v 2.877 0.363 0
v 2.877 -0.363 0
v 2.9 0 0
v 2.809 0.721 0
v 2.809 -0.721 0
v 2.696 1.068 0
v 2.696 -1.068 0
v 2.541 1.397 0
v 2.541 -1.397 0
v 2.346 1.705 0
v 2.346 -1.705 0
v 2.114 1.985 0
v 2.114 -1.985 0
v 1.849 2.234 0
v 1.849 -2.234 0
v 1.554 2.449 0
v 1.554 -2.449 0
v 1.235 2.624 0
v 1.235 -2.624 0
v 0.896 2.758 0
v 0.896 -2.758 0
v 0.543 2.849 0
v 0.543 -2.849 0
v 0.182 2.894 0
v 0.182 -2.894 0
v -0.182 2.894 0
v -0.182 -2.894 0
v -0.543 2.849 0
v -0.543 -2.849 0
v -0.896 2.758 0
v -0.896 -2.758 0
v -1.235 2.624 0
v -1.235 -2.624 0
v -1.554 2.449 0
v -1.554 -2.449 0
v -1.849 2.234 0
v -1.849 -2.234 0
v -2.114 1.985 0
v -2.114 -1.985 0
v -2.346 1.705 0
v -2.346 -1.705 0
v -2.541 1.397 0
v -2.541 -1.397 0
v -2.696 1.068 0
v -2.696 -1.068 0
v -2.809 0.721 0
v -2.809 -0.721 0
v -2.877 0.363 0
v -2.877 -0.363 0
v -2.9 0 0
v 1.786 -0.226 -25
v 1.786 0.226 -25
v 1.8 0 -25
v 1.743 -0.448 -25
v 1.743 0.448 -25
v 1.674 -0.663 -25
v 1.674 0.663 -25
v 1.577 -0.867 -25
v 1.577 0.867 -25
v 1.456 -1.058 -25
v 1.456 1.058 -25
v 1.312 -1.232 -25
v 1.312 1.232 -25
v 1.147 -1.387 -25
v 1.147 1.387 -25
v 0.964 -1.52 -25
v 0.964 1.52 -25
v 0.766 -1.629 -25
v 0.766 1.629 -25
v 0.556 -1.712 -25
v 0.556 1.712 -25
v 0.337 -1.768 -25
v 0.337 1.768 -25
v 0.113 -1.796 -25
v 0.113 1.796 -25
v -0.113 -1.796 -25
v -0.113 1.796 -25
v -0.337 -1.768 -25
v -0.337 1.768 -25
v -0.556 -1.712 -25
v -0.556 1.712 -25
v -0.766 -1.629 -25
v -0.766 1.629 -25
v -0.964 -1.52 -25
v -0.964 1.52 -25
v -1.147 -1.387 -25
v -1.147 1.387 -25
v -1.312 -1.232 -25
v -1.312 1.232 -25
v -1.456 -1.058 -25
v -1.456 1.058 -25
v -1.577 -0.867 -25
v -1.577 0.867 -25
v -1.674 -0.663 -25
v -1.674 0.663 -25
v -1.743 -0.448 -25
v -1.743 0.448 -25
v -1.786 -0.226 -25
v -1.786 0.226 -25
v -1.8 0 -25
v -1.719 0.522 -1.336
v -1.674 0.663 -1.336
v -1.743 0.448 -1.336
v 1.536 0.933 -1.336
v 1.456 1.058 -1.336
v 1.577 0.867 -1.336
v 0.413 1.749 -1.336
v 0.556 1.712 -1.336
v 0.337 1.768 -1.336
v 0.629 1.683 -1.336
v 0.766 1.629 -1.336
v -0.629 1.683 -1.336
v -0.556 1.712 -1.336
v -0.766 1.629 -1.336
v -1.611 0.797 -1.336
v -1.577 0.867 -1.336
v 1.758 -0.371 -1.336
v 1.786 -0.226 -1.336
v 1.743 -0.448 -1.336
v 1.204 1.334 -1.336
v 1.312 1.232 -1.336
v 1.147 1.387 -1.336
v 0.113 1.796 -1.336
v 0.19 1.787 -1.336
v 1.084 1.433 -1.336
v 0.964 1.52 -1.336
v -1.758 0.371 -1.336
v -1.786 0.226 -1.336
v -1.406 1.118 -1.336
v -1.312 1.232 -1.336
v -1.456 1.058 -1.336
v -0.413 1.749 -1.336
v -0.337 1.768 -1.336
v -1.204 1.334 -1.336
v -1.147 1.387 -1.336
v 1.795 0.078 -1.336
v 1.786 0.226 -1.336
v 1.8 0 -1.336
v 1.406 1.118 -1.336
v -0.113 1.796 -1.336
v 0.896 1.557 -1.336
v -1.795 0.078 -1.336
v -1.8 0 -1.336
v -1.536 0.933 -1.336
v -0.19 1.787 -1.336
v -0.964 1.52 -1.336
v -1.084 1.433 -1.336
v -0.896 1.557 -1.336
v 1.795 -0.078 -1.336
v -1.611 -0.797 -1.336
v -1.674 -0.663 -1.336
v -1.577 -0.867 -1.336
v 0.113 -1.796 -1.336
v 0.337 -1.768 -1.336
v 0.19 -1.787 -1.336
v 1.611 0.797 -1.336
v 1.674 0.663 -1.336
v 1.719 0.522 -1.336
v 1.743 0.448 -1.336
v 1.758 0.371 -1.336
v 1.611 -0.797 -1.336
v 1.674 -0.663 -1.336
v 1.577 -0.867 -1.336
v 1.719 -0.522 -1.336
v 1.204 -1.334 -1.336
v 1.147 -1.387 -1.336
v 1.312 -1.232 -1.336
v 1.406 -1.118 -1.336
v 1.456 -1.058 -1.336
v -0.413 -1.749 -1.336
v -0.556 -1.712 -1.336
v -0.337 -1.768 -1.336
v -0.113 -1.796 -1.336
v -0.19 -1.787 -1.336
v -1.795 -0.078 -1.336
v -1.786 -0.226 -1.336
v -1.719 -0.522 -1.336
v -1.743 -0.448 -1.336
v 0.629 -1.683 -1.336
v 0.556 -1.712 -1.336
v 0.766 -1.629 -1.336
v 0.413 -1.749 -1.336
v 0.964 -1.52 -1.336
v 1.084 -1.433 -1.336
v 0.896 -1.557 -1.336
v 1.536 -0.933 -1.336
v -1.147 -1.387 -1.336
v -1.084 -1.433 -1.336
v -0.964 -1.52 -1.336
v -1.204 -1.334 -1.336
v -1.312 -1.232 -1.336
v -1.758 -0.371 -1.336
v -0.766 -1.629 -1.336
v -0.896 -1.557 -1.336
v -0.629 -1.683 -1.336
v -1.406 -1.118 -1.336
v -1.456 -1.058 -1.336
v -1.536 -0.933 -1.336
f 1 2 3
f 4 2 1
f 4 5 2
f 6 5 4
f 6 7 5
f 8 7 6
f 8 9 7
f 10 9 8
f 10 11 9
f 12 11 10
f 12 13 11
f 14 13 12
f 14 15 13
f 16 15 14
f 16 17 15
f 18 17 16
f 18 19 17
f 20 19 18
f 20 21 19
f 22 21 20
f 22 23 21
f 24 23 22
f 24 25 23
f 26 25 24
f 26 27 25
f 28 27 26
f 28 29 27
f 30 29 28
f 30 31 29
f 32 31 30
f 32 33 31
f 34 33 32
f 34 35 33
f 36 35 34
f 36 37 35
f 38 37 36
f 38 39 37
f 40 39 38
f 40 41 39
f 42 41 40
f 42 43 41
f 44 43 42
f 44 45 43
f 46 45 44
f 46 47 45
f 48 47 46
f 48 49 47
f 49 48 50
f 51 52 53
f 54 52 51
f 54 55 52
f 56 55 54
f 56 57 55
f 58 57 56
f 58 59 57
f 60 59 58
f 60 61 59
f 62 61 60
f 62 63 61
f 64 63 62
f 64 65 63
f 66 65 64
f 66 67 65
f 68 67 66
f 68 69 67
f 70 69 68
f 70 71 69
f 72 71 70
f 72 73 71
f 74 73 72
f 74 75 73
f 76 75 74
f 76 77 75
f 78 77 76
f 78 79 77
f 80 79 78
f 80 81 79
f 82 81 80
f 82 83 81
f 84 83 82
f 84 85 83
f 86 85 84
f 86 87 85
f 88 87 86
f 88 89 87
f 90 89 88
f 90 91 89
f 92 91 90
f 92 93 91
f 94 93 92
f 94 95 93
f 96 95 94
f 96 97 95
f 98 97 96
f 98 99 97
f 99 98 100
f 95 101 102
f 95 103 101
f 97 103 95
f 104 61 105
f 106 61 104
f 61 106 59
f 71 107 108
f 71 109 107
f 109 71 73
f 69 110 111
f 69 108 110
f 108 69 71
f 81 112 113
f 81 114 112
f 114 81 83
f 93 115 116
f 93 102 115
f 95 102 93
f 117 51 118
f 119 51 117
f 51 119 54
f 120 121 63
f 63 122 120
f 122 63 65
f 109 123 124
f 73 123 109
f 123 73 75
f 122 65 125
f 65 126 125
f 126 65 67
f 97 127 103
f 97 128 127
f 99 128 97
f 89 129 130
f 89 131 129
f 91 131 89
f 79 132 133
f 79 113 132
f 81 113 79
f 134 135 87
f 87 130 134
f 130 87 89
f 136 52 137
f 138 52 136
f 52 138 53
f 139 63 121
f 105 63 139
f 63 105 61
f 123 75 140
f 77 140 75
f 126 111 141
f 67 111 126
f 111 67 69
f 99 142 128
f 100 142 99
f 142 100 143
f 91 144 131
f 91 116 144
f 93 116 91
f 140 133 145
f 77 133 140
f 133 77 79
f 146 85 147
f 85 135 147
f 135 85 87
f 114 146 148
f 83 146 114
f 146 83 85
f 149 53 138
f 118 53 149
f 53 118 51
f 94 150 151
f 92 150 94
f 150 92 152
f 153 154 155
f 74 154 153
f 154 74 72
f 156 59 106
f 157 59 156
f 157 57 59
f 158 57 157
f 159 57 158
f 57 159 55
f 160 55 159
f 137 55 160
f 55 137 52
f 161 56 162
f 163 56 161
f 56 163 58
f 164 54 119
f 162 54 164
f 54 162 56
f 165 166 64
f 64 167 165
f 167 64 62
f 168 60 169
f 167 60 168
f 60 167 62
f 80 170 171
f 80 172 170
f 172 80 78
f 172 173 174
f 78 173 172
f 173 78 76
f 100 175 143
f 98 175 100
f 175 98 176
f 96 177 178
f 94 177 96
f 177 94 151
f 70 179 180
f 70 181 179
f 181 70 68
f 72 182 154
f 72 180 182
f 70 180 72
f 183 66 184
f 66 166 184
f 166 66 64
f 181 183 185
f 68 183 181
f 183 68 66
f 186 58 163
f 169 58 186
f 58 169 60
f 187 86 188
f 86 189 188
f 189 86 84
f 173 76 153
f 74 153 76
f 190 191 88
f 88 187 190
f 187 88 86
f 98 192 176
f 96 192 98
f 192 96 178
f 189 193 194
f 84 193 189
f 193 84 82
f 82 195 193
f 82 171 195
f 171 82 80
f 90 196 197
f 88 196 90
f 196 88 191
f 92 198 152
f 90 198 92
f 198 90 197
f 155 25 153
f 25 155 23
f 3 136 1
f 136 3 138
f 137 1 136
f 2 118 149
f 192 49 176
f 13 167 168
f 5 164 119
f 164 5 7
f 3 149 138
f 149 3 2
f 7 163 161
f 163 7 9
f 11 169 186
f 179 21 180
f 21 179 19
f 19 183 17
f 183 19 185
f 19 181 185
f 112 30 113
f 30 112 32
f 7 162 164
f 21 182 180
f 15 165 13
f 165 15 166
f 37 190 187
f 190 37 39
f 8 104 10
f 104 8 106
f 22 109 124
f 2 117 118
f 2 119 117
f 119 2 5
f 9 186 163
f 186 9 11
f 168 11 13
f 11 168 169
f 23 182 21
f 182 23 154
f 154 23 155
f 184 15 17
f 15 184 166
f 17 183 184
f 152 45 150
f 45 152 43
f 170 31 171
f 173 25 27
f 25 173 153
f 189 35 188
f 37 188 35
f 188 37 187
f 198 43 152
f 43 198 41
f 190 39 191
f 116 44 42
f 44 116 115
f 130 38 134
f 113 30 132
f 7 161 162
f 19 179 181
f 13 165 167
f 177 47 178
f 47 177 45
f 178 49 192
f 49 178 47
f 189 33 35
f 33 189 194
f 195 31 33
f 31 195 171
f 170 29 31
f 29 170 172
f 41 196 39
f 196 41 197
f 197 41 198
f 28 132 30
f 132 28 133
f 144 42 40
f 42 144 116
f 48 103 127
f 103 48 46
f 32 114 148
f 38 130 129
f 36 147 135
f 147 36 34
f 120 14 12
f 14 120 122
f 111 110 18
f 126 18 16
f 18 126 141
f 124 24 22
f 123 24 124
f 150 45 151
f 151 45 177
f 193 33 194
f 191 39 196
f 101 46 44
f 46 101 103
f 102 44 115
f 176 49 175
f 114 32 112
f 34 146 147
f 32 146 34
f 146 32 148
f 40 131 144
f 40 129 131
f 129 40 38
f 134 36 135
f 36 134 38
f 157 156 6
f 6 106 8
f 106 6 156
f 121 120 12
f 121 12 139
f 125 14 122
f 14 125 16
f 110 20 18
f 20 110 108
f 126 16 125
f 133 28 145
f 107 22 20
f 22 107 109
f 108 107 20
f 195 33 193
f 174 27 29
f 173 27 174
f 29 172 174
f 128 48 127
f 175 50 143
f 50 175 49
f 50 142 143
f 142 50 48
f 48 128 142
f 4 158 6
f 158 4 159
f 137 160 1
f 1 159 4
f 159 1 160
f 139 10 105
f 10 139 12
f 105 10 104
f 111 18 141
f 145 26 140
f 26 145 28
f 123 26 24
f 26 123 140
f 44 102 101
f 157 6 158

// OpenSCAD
$fn = 50;


difference() {
	union() {
		translate(v = [0, 0, 0]) {
			rotate(a = [0, 0, 0]) {
				difference() {
					union() {
						translate(v = [0, 0, -25.0000000000]) {
							cylinder(h = 25, r = 1.5000000000);
						}
						translate(v = [0, 0, -25.0000000000]) {
							cylinder(h = 25, r = 1.8000000000);
						}
						translate(v = [0, 0, -1.7000000000]) {
							cylinder(h = 1.7000000000, r1 = 1.5000000000, r2 = 2.9000000000);
						}
						translate(v = [0, 0, -25.0000000000]) {
							cylinder(h = 25, r = 1.5000000000);
						}
					}
					union();
				}
			}
		}
	}
	union();
}
